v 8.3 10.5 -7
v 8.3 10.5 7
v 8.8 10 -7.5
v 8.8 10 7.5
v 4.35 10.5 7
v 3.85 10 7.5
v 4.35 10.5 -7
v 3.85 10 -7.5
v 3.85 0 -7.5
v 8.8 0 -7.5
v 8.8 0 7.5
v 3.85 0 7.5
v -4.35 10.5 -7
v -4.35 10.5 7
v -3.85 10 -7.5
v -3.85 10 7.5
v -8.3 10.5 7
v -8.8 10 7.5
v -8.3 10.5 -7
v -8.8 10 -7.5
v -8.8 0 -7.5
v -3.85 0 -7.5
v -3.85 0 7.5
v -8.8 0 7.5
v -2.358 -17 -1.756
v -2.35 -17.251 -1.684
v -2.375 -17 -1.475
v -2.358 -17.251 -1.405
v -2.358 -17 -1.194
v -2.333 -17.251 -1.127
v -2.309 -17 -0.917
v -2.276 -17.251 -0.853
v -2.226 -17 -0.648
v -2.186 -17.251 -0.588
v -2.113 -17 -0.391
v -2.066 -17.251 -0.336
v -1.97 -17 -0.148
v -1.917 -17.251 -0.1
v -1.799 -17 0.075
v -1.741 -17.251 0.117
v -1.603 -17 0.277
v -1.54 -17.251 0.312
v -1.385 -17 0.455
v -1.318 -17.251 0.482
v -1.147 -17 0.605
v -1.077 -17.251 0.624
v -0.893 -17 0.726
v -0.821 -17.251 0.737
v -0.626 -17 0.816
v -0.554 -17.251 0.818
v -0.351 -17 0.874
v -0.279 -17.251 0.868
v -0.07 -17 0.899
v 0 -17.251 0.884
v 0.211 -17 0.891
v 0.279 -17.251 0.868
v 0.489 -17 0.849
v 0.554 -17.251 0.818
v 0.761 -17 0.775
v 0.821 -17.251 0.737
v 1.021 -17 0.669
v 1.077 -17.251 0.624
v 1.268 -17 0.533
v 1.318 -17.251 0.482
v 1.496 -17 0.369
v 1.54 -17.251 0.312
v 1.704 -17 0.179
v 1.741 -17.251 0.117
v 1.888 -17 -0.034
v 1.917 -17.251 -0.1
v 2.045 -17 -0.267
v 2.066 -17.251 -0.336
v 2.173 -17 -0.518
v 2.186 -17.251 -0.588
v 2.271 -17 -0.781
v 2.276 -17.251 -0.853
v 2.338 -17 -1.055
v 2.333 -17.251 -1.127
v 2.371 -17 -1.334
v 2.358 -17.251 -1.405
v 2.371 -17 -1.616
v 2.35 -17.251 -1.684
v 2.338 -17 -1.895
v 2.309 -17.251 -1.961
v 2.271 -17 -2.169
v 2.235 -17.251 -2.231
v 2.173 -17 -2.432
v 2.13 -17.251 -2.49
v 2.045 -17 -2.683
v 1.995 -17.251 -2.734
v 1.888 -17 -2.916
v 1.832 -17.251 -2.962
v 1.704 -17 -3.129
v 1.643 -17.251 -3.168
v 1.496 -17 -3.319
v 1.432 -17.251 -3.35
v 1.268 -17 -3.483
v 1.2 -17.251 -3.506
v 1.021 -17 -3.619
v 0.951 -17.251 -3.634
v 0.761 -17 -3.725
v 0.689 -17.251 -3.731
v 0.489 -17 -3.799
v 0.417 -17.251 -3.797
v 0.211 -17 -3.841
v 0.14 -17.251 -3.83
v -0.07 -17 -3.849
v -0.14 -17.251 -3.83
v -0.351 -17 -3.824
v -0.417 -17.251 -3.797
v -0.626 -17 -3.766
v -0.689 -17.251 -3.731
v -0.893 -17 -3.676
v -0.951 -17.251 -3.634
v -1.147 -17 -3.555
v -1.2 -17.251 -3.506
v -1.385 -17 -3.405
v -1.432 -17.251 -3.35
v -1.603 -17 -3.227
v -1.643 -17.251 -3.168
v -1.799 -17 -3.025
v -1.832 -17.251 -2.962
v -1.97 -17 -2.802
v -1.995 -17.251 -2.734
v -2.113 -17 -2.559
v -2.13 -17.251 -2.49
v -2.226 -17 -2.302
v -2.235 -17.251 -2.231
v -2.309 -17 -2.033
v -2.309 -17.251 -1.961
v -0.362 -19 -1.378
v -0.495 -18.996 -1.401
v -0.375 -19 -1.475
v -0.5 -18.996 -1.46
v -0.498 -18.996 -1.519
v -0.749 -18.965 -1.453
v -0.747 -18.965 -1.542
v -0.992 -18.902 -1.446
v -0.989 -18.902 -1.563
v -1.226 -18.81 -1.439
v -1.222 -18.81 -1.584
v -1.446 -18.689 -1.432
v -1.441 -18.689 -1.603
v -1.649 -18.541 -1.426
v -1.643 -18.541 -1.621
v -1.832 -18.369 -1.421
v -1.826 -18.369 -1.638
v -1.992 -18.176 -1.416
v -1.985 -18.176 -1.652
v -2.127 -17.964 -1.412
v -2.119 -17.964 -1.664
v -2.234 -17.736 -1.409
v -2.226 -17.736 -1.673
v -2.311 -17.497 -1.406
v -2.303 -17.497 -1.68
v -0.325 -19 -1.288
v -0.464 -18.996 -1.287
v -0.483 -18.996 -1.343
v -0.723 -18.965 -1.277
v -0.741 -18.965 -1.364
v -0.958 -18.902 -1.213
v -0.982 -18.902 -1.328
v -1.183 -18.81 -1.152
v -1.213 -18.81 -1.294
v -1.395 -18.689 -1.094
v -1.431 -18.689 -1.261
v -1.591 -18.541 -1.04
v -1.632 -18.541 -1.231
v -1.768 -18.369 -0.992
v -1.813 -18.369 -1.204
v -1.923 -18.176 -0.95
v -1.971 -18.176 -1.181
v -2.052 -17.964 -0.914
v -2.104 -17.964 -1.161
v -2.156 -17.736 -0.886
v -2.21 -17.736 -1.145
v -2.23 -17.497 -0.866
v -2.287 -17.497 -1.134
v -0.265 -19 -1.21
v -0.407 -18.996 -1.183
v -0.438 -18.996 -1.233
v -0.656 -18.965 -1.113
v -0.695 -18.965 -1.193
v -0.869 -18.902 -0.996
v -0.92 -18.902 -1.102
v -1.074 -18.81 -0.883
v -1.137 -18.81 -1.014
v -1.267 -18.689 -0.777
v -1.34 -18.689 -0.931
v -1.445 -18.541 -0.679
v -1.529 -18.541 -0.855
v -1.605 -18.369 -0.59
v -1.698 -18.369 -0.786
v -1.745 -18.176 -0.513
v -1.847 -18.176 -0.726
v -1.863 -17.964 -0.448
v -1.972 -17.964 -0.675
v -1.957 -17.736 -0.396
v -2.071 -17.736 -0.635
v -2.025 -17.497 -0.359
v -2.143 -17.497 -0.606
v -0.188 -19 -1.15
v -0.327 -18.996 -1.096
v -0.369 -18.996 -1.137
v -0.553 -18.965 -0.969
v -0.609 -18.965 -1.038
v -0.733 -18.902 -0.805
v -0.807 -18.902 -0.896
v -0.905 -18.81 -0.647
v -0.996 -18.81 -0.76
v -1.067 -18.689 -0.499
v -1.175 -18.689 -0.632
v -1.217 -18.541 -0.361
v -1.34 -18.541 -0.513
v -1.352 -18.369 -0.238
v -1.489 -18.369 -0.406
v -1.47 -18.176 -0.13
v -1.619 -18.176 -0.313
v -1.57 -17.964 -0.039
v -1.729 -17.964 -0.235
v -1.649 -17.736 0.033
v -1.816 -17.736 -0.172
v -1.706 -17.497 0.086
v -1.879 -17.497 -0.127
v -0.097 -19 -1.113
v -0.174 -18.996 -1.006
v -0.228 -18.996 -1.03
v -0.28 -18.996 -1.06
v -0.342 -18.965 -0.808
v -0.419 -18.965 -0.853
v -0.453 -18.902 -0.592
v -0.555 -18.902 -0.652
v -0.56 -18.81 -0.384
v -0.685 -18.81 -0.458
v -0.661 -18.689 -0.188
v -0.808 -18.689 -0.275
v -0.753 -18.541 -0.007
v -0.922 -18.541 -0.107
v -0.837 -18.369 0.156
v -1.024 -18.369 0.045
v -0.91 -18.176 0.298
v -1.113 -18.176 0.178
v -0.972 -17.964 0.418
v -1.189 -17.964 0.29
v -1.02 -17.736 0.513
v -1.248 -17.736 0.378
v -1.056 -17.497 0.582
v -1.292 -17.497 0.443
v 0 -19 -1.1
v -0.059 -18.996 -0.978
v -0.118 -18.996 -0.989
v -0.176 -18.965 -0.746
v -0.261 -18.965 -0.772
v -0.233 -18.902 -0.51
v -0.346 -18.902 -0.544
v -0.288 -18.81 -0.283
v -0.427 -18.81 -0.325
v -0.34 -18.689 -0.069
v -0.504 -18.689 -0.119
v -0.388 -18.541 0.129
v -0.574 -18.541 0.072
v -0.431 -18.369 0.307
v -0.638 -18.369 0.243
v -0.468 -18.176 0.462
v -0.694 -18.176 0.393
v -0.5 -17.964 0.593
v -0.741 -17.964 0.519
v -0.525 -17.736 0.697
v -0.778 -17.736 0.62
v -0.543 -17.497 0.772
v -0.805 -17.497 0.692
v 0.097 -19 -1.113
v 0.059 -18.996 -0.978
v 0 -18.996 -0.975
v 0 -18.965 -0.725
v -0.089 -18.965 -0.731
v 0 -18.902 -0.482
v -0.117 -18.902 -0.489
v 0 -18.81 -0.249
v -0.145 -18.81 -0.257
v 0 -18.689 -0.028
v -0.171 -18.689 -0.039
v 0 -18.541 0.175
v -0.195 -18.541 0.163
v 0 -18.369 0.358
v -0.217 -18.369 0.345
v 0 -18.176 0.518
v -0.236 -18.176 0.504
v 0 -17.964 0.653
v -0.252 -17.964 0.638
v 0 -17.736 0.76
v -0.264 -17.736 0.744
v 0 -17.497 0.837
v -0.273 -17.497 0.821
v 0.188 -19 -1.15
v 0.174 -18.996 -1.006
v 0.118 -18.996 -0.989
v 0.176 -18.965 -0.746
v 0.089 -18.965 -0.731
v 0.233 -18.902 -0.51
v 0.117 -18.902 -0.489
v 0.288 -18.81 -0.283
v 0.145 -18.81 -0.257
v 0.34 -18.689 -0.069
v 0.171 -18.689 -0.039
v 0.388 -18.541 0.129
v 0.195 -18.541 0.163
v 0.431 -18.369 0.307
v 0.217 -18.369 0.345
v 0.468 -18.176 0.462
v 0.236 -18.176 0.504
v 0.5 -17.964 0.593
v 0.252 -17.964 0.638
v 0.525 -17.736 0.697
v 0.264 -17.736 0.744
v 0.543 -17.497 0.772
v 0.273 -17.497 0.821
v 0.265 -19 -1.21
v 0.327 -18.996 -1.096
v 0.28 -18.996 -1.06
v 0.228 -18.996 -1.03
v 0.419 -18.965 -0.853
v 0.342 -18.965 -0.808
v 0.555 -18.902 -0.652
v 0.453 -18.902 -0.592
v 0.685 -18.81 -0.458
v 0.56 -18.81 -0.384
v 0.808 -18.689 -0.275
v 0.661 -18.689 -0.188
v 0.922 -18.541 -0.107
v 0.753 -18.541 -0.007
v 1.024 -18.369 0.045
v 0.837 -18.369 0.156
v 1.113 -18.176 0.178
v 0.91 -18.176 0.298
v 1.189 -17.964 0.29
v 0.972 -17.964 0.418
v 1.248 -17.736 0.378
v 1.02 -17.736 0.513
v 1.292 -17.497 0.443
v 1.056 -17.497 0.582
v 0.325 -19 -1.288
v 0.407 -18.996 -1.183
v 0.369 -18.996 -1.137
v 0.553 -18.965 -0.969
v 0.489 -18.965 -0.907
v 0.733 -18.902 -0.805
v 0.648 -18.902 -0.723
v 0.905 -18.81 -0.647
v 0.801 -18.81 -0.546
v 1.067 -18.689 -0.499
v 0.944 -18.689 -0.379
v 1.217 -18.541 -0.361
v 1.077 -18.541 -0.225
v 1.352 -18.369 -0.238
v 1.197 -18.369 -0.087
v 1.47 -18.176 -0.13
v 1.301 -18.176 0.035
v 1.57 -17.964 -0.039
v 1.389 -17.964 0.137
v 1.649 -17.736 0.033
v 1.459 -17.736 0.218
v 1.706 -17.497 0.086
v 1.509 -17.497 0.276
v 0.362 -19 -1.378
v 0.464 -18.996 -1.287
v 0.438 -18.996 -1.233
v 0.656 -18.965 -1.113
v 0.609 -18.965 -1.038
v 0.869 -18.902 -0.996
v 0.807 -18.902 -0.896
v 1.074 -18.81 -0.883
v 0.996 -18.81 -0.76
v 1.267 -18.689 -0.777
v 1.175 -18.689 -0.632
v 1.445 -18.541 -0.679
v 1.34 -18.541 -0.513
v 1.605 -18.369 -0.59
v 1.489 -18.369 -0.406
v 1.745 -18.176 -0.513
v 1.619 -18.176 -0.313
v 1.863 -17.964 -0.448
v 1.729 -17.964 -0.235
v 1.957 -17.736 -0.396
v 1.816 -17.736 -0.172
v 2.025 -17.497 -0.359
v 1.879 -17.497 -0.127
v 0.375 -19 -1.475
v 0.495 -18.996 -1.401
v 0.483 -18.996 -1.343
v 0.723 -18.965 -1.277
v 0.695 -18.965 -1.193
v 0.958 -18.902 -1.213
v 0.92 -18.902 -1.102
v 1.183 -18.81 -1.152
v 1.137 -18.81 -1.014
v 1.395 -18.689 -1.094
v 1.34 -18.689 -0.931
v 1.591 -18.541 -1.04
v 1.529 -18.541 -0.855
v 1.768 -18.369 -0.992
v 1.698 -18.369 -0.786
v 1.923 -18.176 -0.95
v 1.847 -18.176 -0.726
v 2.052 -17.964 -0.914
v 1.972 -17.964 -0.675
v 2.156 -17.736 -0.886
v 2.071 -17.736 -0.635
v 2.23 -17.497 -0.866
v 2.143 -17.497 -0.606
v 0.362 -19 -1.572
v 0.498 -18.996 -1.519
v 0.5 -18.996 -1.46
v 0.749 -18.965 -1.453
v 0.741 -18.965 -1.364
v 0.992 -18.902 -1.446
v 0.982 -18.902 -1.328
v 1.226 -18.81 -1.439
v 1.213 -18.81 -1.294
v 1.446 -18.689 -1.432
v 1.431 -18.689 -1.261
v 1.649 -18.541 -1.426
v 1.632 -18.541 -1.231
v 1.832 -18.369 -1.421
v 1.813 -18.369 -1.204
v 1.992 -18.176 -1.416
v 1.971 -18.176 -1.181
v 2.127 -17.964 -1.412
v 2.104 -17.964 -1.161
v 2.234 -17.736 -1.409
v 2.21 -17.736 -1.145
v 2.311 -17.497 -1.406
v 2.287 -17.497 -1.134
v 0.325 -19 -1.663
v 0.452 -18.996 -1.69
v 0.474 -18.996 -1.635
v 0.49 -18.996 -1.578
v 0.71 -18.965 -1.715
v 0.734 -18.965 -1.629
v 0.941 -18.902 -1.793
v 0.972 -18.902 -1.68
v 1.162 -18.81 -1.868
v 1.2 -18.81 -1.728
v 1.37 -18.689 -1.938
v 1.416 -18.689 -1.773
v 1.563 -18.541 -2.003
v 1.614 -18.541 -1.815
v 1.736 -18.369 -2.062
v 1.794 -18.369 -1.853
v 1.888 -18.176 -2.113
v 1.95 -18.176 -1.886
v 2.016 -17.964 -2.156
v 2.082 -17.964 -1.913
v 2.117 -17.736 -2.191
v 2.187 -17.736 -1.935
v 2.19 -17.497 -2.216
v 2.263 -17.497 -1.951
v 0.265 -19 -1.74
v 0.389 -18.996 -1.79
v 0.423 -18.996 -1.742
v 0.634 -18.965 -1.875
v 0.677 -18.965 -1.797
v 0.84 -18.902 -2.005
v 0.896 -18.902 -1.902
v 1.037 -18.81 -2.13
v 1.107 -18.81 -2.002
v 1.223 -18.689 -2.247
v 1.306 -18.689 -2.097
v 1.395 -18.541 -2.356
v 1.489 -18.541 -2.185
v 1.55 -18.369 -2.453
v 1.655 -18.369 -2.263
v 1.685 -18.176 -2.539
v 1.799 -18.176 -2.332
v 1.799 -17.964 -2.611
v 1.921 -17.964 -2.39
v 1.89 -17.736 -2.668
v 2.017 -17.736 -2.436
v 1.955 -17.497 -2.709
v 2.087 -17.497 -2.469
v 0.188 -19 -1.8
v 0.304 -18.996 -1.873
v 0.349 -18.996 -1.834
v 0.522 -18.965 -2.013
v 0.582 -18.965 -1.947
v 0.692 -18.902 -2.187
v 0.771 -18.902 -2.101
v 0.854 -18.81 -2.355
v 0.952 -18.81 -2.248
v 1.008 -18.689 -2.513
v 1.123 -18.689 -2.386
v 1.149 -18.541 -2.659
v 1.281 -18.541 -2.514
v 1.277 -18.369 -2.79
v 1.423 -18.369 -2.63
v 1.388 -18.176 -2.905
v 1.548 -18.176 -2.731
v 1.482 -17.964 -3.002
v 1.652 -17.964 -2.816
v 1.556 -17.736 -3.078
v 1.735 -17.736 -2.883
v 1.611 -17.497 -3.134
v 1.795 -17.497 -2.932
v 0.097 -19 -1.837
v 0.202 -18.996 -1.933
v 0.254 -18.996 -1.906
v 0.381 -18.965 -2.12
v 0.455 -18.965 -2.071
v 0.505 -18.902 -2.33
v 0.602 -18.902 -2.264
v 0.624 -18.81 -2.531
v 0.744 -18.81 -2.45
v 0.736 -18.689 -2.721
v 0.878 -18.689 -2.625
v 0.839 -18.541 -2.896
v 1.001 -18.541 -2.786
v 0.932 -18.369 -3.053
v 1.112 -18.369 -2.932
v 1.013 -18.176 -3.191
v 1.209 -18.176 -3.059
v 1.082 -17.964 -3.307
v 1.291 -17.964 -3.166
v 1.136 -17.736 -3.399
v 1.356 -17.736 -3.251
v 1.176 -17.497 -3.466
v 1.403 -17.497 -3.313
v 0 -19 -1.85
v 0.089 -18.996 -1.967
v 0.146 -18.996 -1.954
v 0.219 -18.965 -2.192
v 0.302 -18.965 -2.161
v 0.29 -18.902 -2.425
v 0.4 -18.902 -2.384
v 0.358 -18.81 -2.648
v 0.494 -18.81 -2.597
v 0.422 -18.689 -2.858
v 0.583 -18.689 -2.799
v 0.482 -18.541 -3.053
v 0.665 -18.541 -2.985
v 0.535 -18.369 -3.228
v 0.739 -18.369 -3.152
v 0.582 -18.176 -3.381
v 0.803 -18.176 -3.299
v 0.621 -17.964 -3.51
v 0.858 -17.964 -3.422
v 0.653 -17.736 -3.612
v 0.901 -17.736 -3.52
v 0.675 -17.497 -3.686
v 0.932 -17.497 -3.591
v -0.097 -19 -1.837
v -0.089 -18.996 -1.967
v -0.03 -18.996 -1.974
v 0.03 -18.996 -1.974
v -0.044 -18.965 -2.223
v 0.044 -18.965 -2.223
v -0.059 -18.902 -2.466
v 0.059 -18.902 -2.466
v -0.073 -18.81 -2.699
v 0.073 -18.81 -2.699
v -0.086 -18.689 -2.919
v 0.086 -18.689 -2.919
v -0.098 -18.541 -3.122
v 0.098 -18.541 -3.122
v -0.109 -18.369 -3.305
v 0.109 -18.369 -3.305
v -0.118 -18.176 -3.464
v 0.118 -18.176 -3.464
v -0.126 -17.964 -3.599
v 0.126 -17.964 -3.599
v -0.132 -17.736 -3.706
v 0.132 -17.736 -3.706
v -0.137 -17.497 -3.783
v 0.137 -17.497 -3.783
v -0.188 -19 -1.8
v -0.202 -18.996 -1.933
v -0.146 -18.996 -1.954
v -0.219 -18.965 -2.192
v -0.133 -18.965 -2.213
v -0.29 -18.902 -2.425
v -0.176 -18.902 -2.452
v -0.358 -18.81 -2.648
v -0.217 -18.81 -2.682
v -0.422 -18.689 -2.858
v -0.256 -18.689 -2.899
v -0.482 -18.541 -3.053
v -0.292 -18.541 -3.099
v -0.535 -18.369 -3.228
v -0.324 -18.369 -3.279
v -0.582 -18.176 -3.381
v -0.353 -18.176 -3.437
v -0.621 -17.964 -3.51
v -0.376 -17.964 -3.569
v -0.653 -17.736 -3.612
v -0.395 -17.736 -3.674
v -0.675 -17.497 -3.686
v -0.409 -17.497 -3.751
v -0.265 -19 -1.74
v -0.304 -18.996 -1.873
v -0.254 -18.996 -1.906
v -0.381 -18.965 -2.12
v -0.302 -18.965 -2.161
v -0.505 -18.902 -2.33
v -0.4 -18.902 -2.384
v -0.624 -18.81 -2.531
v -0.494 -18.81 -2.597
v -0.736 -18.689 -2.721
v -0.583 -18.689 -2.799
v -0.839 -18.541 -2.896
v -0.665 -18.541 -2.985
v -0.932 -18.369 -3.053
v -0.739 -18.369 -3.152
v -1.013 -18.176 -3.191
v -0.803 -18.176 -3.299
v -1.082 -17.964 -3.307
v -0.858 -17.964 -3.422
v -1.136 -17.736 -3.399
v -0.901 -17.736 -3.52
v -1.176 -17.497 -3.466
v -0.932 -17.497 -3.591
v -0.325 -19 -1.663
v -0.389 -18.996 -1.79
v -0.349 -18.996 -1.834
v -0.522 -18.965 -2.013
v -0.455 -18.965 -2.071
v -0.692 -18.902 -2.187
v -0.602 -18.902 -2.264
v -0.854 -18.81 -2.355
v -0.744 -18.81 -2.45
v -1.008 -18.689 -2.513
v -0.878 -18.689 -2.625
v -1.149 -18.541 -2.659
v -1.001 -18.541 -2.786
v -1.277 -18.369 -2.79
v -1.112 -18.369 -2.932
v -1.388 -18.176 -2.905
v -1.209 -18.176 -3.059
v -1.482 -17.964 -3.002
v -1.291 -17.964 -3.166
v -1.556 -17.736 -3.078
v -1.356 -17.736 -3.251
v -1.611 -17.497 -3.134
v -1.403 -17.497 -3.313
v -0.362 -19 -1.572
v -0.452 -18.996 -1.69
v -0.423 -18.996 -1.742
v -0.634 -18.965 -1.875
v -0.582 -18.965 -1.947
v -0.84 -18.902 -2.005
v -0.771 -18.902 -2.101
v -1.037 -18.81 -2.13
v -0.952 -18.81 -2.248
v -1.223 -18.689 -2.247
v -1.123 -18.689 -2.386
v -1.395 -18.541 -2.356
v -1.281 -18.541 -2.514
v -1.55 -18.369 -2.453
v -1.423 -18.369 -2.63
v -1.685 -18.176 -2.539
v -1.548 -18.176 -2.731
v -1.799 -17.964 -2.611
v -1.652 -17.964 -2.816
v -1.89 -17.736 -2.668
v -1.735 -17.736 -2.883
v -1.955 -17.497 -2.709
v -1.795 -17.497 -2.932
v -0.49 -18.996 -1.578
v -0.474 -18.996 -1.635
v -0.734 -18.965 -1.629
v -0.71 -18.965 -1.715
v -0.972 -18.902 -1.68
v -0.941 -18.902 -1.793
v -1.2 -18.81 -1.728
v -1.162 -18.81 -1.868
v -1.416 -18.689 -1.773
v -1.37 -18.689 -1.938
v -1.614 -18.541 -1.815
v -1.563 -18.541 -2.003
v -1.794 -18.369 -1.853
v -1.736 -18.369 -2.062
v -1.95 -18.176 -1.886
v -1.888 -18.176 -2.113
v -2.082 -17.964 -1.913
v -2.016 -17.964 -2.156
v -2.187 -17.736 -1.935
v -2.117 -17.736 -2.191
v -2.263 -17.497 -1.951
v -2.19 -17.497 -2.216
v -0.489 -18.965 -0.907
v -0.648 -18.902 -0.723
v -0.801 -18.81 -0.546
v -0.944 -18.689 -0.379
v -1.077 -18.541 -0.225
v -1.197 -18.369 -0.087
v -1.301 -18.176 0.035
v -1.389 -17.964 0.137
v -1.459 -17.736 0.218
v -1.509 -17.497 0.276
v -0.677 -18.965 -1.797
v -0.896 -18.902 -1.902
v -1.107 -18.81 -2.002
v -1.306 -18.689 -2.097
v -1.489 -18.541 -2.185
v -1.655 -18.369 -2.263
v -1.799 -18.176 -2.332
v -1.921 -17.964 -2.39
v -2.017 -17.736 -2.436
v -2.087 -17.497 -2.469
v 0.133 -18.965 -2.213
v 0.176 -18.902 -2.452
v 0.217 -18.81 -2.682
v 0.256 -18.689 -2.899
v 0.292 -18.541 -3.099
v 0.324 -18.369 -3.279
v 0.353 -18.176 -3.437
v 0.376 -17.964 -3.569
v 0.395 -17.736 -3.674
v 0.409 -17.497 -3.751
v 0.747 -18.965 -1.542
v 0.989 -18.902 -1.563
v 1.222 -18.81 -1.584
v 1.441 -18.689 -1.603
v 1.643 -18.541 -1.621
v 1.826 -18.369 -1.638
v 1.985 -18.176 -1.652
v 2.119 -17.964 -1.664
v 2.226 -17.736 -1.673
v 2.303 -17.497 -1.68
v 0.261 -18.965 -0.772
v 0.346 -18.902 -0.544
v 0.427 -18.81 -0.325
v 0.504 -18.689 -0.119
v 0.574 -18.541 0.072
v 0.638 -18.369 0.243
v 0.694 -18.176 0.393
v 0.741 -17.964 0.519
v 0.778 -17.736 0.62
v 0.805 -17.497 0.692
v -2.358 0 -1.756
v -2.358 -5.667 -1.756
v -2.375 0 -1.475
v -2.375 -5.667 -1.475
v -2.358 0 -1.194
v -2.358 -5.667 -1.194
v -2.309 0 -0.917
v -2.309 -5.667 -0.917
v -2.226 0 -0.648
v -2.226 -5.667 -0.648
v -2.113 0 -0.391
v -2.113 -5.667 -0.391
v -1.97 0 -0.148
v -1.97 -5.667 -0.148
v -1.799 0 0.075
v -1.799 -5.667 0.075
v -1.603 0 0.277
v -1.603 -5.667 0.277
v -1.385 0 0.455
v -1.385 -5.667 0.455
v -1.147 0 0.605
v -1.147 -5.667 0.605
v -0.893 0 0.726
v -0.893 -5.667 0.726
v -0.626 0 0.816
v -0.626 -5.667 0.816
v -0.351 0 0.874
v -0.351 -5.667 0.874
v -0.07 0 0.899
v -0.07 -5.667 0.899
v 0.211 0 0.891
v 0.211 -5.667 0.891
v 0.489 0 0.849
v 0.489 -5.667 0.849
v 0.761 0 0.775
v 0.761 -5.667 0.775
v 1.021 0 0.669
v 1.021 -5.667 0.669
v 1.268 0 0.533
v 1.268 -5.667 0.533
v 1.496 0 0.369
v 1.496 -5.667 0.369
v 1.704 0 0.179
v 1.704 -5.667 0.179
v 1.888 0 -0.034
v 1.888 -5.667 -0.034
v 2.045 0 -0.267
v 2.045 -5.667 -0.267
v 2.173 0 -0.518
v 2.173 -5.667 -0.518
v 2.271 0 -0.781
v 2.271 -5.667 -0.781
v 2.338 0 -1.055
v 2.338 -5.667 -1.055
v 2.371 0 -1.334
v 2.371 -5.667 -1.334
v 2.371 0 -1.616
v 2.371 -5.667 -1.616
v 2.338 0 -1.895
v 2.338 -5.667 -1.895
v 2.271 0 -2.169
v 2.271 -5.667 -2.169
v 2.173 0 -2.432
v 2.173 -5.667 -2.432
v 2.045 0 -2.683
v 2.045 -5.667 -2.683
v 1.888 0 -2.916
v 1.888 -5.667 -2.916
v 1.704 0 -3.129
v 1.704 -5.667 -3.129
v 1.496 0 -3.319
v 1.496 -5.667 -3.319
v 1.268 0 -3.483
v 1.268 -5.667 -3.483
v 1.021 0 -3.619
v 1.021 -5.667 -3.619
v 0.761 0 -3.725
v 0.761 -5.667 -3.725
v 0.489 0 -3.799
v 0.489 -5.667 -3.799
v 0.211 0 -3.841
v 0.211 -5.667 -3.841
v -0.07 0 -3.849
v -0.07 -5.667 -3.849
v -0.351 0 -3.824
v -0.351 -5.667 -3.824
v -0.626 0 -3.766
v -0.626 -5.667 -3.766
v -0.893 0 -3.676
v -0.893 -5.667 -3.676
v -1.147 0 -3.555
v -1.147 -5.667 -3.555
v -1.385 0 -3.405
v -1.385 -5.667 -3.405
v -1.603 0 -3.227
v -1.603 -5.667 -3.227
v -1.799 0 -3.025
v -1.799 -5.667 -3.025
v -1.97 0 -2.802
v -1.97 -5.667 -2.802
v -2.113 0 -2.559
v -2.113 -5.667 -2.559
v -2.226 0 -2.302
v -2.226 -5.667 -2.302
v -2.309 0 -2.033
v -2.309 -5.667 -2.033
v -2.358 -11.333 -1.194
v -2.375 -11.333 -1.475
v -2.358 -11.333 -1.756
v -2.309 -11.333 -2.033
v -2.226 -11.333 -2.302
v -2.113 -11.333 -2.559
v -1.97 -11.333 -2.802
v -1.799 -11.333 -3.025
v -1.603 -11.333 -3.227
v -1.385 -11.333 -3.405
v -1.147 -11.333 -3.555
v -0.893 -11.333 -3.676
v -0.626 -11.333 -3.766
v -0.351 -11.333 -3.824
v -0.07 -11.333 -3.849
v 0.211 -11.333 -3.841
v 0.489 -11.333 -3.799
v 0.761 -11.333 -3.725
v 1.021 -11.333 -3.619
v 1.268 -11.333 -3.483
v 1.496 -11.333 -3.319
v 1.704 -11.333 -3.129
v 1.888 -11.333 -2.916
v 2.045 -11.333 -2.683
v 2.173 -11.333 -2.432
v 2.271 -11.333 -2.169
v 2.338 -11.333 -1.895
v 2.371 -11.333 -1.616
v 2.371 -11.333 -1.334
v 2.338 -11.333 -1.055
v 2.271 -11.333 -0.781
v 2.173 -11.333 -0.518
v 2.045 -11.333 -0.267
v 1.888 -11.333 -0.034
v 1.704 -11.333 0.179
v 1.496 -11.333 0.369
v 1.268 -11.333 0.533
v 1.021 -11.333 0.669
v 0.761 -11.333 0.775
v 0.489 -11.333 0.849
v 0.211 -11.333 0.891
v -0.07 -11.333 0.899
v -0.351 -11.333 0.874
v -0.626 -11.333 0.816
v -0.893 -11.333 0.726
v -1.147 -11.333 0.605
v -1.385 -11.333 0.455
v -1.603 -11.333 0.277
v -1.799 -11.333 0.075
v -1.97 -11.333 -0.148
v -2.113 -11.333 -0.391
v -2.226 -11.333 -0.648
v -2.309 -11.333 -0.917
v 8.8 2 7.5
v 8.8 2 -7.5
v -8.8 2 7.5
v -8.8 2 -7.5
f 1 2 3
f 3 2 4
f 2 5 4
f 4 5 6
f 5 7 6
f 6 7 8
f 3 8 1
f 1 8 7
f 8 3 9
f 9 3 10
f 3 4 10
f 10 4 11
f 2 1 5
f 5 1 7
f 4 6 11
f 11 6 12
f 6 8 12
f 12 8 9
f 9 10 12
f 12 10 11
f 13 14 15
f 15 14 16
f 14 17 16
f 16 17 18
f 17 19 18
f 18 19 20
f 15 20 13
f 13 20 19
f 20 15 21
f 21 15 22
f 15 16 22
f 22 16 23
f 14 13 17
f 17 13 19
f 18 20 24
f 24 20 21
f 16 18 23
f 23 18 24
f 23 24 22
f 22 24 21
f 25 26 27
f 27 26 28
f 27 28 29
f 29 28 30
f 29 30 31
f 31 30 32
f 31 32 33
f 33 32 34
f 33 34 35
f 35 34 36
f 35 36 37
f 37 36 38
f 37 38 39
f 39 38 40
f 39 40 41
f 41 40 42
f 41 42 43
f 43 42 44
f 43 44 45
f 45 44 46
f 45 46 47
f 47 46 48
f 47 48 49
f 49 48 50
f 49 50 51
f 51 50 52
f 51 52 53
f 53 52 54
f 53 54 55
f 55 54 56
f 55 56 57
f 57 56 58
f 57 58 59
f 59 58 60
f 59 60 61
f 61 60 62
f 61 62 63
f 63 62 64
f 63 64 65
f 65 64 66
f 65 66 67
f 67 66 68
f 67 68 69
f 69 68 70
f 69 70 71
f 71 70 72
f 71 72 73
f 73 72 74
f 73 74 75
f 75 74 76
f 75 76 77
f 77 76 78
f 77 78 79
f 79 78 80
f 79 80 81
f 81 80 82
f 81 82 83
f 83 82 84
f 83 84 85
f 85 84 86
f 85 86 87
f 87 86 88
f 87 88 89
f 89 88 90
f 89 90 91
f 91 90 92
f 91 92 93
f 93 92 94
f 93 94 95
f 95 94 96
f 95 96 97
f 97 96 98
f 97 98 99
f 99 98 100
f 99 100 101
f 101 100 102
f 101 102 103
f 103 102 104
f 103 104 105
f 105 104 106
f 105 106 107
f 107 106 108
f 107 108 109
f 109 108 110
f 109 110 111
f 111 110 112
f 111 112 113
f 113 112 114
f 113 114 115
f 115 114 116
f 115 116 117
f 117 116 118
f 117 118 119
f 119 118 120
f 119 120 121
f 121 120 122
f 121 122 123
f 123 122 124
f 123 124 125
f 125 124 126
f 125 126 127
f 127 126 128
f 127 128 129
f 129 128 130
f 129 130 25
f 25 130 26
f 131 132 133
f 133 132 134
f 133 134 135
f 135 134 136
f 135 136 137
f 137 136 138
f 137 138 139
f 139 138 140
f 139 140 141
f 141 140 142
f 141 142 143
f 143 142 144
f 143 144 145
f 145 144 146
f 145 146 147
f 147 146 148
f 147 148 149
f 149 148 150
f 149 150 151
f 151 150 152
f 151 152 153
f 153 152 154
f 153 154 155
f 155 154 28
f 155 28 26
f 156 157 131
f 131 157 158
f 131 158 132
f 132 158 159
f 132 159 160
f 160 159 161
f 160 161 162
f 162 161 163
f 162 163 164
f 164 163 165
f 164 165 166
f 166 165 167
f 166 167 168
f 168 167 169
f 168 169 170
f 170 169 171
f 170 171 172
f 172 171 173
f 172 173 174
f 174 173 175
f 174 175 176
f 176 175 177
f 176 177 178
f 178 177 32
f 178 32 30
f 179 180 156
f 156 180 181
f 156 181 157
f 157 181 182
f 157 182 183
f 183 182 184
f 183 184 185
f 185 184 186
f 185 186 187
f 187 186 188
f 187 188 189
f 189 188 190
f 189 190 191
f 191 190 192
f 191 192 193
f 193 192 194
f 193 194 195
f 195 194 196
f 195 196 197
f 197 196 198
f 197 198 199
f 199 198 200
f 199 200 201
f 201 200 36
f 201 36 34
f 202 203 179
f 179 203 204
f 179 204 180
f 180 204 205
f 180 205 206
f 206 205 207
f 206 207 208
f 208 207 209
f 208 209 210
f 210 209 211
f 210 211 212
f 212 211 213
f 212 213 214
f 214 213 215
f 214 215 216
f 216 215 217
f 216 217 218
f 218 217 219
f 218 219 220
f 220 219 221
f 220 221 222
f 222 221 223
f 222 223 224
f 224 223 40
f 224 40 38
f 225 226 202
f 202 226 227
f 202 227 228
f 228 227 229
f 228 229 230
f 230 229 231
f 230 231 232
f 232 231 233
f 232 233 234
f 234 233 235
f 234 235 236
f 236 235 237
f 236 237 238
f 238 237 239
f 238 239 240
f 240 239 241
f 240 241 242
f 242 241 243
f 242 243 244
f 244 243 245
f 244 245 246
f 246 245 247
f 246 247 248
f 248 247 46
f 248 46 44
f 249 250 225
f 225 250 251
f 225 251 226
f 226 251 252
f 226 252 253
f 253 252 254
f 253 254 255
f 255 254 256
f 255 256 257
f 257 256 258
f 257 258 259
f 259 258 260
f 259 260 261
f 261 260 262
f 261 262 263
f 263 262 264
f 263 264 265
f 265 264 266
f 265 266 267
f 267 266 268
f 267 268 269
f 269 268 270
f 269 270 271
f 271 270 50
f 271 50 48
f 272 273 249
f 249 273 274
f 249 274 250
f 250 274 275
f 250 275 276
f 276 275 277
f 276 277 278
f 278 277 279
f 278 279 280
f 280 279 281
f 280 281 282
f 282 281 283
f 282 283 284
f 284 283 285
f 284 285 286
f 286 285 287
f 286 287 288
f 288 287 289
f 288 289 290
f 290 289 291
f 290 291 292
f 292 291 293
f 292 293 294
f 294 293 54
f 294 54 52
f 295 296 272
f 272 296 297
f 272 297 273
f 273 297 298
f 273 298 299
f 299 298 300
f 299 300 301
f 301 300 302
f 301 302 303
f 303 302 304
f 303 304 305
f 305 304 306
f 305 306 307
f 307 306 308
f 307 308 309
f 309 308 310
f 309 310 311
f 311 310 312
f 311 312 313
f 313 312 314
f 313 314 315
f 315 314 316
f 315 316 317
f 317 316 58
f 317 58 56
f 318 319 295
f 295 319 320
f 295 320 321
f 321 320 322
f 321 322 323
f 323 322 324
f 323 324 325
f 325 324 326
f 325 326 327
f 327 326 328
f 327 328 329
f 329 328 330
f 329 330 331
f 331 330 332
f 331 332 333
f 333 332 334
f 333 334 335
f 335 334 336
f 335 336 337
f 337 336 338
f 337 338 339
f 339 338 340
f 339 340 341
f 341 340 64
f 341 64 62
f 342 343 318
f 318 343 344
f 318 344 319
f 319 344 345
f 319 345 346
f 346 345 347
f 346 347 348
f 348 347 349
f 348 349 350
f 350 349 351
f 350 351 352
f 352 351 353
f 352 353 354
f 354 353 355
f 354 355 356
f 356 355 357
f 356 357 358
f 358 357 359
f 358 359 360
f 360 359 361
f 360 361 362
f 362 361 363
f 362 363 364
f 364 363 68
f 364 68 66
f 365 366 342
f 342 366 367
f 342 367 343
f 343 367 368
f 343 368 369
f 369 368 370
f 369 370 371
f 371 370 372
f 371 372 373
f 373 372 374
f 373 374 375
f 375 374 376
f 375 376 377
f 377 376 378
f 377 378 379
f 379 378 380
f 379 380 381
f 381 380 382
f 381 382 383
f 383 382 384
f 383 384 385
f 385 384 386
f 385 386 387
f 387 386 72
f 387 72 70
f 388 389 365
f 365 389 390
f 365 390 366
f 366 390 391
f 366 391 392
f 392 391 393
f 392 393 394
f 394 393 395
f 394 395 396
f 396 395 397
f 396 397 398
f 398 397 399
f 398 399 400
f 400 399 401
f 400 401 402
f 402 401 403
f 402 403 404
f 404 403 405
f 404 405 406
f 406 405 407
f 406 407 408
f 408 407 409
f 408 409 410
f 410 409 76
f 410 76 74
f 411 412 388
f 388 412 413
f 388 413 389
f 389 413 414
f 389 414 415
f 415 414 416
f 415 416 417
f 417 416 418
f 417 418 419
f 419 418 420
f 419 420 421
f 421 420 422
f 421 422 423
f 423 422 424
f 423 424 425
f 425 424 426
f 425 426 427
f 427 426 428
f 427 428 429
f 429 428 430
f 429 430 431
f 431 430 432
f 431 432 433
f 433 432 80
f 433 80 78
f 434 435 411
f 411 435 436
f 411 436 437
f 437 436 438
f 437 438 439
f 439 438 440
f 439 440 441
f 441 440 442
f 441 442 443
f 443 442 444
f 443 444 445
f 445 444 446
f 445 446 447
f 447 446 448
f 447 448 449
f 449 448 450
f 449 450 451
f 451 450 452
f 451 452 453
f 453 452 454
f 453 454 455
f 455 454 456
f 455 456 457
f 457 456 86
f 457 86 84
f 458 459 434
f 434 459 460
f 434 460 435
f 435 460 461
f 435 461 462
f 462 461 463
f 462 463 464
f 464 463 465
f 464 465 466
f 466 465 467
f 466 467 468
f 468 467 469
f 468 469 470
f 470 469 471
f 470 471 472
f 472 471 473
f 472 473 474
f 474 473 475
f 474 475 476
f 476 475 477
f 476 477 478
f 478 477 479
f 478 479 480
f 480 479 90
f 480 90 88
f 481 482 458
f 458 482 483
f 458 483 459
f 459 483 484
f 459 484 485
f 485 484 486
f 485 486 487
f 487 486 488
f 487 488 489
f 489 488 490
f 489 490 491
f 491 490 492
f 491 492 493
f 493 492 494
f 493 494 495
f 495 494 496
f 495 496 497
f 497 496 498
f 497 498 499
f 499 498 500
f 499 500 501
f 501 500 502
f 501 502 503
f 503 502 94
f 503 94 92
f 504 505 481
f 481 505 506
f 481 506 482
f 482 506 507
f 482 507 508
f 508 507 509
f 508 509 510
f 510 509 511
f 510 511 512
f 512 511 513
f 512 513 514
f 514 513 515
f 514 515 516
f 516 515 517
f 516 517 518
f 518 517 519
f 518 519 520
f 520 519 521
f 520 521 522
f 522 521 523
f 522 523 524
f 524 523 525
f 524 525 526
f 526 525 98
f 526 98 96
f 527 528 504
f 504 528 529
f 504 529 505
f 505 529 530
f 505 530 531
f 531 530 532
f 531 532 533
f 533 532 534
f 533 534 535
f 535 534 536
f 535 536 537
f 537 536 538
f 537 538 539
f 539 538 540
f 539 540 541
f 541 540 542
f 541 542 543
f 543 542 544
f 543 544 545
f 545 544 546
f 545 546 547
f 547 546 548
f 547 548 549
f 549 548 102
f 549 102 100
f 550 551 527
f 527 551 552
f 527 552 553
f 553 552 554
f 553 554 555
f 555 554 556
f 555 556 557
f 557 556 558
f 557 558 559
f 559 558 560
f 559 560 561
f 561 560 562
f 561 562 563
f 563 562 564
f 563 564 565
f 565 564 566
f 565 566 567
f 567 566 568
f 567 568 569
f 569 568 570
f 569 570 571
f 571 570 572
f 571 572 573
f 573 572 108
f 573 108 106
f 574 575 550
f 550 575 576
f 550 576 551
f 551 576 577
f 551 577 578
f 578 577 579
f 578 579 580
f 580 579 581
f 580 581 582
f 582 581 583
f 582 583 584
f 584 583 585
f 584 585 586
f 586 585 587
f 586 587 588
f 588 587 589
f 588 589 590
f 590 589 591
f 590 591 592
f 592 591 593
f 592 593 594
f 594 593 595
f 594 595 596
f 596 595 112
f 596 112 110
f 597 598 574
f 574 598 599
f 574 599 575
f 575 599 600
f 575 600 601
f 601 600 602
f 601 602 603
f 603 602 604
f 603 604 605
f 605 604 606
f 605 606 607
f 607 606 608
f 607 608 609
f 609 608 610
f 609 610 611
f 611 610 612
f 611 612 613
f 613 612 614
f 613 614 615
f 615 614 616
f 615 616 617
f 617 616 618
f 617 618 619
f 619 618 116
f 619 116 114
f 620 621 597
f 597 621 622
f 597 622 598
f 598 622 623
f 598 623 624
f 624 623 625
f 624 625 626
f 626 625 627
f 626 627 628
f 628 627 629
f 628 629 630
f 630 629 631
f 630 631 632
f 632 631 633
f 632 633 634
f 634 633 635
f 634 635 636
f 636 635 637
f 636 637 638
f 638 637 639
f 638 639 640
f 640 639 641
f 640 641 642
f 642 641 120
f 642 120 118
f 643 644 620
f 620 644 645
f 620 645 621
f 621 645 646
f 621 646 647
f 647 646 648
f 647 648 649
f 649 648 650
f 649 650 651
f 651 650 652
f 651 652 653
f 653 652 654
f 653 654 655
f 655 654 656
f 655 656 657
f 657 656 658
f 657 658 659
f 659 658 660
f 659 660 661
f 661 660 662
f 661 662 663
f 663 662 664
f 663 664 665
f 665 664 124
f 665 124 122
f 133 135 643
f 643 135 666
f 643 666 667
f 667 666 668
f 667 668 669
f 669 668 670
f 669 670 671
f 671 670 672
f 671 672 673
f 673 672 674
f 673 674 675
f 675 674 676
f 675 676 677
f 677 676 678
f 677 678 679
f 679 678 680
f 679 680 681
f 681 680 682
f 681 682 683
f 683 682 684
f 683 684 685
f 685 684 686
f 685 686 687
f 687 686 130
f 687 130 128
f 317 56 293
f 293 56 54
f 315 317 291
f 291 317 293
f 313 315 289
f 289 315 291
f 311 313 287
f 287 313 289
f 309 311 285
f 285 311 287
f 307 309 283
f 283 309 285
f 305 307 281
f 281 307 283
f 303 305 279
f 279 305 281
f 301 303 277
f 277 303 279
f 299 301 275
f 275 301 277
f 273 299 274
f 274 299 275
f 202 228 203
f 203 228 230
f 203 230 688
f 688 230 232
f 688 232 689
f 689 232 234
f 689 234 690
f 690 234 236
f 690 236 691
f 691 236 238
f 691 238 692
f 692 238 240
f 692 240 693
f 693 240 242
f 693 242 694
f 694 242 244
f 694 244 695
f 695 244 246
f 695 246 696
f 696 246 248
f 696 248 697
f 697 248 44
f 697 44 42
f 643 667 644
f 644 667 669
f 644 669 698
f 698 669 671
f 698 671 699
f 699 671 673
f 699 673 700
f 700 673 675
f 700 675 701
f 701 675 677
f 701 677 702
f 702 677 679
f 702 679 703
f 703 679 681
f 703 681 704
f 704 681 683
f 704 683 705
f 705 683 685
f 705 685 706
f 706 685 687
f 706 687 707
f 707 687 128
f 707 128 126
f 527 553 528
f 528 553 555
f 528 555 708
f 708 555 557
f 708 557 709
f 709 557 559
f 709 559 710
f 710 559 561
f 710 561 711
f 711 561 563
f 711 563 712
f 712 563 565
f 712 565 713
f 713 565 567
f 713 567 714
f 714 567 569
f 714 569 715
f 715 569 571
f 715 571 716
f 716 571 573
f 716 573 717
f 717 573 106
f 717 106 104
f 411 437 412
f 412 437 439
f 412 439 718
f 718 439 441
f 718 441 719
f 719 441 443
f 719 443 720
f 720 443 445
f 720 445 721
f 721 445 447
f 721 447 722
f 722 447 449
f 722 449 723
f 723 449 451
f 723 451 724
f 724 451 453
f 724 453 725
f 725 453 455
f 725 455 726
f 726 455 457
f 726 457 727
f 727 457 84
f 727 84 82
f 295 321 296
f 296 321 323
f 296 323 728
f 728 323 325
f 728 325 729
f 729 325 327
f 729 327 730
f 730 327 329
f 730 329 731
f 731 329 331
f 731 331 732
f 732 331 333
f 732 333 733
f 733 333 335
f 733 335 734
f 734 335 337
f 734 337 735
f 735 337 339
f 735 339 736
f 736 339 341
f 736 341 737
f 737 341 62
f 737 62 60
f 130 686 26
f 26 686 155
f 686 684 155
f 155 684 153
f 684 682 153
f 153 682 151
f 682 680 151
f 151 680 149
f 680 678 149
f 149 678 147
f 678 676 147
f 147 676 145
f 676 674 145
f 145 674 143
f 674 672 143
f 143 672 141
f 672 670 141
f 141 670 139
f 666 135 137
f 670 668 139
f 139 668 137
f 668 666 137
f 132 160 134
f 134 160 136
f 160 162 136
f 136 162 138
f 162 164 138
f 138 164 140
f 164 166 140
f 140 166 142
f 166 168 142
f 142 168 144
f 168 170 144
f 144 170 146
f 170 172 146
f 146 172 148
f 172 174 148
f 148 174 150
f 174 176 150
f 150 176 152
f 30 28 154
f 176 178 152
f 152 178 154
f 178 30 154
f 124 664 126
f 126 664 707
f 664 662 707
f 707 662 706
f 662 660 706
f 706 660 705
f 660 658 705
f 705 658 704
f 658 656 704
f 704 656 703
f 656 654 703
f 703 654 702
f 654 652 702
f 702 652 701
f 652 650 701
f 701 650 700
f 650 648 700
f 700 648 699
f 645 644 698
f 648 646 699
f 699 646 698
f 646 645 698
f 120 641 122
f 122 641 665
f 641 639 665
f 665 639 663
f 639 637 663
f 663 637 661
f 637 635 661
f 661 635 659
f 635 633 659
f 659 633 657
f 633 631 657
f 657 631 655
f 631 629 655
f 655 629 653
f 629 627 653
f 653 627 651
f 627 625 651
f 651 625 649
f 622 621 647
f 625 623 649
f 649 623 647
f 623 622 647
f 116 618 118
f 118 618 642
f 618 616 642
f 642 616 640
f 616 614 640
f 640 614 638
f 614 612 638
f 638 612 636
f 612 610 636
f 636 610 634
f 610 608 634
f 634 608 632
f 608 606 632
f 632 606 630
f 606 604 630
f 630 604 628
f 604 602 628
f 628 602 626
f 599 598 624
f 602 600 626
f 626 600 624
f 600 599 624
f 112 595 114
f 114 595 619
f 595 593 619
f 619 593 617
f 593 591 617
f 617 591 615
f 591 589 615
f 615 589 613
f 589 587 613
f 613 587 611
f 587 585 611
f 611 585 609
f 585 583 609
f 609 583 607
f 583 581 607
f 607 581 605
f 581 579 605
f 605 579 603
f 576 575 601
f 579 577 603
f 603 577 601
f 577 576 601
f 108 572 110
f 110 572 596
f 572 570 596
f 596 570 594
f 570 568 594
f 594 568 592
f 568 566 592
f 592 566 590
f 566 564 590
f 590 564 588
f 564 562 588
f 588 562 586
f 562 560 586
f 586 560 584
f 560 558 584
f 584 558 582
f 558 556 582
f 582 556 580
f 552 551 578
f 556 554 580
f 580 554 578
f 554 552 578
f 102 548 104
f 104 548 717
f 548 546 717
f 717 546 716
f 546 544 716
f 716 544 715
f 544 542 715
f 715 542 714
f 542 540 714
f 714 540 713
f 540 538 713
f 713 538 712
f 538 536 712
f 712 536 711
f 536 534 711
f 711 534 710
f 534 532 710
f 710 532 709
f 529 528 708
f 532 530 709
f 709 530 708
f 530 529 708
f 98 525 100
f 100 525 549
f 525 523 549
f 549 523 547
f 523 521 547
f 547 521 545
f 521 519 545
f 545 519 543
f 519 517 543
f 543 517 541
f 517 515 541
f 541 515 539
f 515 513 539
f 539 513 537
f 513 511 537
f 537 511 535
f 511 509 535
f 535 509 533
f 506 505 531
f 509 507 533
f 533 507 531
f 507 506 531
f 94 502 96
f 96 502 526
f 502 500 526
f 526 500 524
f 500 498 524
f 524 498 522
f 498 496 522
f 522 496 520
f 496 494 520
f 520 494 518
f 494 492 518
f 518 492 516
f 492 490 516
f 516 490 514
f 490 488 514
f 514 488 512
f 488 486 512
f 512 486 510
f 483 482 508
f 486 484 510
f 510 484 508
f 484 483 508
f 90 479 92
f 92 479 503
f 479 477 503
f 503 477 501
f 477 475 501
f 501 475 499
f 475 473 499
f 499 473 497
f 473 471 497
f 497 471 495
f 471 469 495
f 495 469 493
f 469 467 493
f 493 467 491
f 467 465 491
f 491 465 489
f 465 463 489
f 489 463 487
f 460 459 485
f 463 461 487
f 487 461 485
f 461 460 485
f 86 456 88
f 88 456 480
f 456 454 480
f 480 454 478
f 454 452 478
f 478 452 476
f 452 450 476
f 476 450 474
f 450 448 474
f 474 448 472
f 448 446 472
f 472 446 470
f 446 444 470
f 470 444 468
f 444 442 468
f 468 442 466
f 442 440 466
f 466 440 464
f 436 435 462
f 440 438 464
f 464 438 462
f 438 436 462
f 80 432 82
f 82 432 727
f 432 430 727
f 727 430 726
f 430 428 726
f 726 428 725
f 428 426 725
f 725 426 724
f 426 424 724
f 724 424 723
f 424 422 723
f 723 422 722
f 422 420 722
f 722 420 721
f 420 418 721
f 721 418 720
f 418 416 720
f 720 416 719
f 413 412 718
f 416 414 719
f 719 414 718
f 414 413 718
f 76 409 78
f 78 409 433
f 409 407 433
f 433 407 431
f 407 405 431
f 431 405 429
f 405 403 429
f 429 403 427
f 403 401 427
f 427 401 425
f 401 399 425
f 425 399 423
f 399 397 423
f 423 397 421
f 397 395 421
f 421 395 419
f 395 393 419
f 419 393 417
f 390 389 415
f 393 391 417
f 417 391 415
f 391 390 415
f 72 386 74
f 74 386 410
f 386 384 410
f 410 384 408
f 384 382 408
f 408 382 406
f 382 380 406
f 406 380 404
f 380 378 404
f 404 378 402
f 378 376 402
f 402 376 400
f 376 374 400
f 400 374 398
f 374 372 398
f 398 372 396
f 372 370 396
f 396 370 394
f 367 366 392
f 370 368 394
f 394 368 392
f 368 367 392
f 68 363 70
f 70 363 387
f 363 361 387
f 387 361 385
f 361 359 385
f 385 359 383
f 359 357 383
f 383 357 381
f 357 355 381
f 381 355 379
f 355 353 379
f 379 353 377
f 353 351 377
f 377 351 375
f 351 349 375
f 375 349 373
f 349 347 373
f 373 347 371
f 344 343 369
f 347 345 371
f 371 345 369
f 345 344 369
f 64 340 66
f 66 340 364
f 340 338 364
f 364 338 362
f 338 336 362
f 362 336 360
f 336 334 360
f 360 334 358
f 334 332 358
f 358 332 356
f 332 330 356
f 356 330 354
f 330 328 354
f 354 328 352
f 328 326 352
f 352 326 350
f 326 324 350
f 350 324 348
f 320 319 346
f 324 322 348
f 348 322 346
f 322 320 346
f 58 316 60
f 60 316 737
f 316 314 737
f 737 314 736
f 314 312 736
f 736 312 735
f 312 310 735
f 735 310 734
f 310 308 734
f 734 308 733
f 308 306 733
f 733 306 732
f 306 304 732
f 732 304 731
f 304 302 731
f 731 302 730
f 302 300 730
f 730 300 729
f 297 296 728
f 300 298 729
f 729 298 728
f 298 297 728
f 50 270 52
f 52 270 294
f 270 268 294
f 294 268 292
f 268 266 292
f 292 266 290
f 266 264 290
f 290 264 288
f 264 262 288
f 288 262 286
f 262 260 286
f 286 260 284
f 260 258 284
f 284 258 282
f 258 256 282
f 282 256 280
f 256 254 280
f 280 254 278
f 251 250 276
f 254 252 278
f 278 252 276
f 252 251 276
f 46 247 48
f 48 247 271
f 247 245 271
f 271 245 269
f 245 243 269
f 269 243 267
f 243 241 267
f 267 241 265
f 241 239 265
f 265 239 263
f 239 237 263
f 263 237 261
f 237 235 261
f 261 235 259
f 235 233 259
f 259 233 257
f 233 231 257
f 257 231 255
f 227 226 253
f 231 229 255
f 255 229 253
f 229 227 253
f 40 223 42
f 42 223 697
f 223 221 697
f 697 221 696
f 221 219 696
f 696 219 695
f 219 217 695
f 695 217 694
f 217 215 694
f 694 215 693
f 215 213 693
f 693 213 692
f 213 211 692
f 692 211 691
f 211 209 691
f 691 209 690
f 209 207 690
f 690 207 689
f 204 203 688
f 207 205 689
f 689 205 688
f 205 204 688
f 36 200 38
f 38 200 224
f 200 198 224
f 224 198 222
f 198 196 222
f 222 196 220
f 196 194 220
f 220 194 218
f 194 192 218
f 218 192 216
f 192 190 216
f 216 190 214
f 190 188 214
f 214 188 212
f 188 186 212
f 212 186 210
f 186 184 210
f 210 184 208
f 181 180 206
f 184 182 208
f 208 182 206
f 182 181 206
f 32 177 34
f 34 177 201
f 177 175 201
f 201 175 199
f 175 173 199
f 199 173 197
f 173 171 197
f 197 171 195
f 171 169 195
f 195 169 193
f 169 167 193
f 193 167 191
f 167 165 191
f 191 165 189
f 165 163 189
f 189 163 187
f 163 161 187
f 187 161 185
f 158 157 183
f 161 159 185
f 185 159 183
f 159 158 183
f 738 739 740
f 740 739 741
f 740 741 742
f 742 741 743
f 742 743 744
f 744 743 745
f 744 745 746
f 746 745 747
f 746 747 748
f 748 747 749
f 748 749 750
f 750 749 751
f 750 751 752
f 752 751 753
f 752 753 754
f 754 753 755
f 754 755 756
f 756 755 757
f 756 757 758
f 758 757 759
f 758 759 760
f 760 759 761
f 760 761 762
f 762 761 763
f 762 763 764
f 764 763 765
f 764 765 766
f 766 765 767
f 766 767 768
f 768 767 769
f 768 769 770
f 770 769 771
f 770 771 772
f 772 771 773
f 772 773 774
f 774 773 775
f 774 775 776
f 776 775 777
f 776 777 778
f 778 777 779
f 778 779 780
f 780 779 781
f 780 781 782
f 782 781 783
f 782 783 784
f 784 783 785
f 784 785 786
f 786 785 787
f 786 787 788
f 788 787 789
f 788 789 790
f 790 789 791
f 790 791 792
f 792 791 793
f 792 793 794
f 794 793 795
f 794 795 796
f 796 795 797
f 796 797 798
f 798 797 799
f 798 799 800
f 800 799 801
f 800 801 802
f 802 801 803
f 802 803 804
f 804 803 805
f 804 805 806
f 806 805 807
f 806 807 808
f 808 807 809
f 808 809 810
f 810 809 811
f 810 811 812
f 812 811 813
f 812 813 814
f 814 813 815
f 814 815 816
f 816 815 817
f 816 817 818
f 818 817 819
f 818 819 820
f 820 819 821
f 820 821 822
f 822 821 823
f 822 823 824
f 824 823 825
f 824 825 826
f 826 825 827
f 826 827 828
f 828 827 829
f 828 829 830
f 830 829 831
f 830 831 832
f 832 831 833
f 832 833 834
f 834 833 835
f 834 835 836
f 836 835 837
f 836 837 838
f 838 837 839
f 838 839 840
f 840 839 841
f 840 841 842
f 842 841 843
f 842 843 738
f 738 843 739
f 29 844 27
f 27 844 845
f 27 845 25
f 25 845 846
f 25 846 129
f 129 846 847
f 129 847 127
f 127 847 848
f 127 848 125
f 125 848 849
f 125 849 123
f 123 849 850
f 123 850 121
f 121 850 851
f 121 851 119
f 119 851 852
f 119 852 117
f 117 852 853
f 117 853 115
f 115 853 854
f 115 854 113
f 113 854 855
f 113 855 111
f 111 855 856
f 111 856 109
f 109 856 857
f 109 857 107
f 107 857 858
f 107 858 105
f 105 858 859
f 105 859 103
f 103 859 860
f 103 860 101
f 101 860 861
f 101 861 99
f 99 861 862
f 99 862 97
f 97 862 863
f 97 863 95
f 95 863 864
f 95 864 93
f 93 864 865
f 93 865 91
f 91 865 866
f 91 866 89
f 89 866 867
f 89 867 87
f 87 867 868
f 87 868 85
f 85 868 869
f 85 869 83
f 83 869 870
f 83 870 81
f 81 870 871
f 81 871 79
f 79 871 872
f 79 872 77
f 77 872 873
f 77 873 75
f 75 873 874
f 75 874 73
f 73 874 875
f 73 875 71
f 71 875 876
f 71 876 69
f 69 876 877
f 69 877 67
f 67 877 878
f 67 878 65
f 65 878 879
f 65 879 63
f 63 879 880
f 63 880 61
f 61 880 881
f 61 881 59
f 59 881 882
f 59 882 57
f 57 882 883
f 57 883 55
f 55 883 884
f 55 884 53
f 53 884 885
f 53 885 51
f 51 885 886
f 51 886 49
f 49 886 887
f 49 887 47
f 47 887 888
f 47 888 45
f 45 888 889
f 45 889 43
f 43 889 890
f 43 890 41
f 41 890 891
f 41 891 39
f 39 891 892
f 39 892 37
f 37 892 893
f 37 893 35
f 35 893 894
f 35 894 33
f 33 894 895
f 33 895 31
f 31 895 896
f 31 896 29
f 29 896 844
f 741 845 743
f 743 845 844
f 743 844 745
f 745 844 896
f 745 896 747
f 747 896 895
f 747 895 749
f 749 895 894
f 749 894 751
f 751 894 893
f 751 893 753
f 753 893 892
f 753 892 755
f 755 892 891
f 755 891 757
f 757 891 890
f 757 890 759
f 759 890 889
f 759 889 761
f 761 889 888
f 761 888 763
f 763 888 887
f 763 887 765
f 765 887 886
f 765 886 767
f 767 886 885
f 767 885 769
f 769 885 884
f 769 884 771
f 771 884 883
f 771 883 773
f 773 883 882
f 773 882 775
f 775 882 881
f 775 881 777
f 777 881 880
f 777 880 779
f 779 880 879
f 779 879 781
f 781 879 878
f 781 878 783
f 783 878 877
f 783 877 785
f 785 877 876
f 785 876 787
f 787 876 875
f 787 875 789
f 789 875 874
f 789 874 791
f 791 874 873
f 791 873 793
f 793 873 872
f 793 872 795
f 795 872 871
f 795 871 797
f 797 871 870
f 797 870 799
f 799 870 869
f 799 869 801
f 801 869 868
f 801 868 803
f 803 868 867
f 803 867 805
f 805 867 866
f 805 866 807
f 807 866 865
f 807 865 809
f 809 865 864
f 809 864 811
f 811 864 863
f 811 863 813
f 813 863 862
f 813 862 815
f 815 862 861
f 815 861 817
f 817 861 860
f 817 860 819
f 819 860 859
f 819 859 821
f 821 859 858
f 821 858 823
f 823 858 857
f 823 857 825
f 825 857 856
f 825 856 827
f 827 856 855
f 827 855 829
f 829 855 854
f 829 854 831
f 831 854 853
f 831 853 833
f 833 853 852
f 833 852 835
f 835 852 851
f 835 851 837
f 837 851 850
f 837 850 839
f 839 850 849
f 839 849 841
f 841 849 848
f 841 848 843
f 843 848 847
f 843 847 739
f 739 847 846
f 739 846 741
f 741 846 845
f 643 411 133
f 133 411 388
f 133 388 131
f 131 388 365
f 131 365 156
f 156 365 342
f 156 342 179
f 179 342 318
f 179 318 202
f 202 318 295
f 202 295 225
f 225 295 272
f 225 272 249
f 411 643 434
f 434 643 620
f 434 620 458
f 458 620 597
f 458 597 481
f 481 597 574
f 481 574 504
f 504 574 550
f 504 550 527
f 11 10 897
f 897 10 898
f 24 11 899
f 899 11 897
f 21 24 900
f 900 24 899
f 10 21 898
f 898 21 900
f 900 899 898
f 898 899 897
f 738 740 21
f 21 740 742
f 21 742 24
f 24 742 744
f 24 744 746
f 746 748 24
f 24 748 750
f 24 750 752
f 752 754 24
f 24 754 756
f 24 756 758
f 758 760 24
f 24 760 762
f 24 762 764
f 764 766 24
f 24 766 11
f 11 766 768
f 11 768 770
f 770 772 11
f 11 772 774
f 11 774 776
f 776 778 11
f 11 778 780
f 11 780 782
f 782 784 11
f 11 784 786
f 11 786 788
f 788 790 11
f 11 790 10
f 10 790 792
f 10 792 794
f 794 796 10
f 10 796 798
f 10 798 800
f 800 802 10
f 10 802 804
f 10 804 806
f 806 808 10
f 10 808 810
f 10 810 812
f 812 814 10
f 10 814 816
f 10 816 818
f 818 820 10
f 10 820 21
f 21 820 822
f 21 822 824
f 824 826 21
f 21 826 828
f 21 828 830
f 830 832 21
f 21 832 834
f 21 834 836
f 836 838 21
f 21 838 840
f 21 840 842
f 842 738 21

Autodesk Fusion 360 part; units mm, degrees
sketch "Sketch1" plane through (0, 0, 0) normal (0, 1, 0) x (1, 0, 0)
  line L0 (8.8, -7.5) -> (-8.8, -7.5)
  line L1 (-8.8, -7.5) -> (-8.8, 7.5)
  line L2 (-8.8, 7.5) -> (8.8, 7.5)
  line L3 (8.8, 7.5) -> (8.8, -7.5)
  line L4 (8.8, -7.5) -> (-8.8, 7.5) construction
  line L5 (-8.8, -7.5) -> (8.8, 7.5) construction
  line L6 (3.85, -7.5) -> (-3.85, -7.5)
  line L7 (-3.85, -7.5) -> (-3.85, 7.5)
  line L8 (-3.85, 7.5) -> (3.85, 7.5)
  line L9 (3.85, 7.5) -> (3.85, -7.5)
  line L10 (3.85, -7.5) -> (-3.85, 7.5) construction
  line L11 (-3.85, -7.5) -> (3.85, 7.5) construction
  dimension "d1" = 17.6
  dimension "d2" = 15
  dimension "d3" = 7.7
  dimension "d4" = 15
extrude "Extrude1" add sketch "Sketch1" along normal blind 10.5 contours L0 L2 L3 L9 | L0 L1 L2 L7 makes body 1 at (-8.8, 3.5, 2.5) makes body 2 at (8.8, 3.5, -2.5)
extrude "Extrude2" add sketch "Sketch1" along normal blind 2 separate body makes body 3
chamfer "Chamfer1" distance 0.5 angle 45 8 edges at (-8.8, 10.5, 0) (-3.85, 10.5, 0) (-6.325, 10.5, -7.5) (-6.325, 10.5, 7.5) (3.85, 10.5, 0) (8.8, 10.5, 0) (6.325, 10.5, -7.5) (6.325, 10.5, 7.5) on bodies 1 2
sketch "Sketch2" plane through (0, 0, 0) normal (0, -1, 0) x (1, 0, 0)
  line L0 (-8.8, -7.5) -> (8.8, -7.5)
  line L1 (8.8, -7.5) -> (8.8, 7.5)
  line L2 (8.8, 7.5) -> (-8.8, 7.5)
  line L3 (-8.8, 7.5) -> (-8.8, -7.5)
  circle A0 centre (0, -1.475) radius 2.375
  dimension "d10" = 4.75
  dimension "d11" = 8.975
extrude "Extrude3" add sketch "Sketch2" along normal blind 19 contours A0 bodies 3
fillet "Fillet1" radius 2 1 edges at (-2.2143, -19, -2.3338) on bodies 3
